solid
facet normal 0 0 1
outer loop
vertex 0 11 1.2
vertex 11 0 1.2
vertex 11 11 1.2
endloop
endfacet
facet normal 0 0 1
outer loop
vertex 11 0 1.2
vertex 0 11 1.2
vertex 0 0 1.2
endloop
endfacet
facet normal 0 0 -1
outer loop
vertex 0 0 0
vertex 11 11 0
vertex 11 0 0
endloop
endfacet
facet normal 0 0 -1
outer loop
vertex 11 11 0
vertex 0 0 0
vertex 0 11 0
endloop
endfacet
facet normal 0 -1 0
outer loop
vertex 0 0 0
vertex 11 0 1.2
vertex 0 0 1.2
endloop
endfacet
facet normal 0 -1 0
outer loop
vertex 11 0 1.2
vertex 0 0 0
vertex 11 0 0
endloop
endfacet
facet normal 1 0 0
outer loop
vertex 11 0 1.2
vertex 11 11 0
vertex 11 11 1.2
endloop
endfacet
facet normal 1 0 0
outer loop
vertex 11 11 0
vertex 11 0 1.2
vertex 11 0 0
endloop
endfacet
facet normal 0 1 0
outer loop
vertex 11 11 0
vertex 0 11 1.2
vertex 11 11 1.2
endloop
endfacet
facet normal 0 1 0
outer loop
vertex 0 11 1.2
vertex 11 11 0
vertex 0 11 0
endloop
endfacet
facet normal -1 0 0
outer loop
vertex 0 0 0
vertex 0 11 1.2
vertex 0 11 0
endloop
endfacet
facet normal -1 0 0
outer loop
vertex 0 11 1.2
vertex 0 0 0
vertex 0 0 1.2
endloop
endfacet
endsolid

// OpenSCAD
/* Warning, this is a very basic generator with a lot of approximation 
input data : [TFBGA, DWB, 11x11x1.2mm, 228, , B, C04-21484B]
generated by com.zoubworld.electronics.cad.model3d.Basic
Date : Sun Feb 15 10:50:49 CET 2026
*/

//body
color("black")
translate([0,0,0])
cube([11.0,11.0,1.2], center=false);
